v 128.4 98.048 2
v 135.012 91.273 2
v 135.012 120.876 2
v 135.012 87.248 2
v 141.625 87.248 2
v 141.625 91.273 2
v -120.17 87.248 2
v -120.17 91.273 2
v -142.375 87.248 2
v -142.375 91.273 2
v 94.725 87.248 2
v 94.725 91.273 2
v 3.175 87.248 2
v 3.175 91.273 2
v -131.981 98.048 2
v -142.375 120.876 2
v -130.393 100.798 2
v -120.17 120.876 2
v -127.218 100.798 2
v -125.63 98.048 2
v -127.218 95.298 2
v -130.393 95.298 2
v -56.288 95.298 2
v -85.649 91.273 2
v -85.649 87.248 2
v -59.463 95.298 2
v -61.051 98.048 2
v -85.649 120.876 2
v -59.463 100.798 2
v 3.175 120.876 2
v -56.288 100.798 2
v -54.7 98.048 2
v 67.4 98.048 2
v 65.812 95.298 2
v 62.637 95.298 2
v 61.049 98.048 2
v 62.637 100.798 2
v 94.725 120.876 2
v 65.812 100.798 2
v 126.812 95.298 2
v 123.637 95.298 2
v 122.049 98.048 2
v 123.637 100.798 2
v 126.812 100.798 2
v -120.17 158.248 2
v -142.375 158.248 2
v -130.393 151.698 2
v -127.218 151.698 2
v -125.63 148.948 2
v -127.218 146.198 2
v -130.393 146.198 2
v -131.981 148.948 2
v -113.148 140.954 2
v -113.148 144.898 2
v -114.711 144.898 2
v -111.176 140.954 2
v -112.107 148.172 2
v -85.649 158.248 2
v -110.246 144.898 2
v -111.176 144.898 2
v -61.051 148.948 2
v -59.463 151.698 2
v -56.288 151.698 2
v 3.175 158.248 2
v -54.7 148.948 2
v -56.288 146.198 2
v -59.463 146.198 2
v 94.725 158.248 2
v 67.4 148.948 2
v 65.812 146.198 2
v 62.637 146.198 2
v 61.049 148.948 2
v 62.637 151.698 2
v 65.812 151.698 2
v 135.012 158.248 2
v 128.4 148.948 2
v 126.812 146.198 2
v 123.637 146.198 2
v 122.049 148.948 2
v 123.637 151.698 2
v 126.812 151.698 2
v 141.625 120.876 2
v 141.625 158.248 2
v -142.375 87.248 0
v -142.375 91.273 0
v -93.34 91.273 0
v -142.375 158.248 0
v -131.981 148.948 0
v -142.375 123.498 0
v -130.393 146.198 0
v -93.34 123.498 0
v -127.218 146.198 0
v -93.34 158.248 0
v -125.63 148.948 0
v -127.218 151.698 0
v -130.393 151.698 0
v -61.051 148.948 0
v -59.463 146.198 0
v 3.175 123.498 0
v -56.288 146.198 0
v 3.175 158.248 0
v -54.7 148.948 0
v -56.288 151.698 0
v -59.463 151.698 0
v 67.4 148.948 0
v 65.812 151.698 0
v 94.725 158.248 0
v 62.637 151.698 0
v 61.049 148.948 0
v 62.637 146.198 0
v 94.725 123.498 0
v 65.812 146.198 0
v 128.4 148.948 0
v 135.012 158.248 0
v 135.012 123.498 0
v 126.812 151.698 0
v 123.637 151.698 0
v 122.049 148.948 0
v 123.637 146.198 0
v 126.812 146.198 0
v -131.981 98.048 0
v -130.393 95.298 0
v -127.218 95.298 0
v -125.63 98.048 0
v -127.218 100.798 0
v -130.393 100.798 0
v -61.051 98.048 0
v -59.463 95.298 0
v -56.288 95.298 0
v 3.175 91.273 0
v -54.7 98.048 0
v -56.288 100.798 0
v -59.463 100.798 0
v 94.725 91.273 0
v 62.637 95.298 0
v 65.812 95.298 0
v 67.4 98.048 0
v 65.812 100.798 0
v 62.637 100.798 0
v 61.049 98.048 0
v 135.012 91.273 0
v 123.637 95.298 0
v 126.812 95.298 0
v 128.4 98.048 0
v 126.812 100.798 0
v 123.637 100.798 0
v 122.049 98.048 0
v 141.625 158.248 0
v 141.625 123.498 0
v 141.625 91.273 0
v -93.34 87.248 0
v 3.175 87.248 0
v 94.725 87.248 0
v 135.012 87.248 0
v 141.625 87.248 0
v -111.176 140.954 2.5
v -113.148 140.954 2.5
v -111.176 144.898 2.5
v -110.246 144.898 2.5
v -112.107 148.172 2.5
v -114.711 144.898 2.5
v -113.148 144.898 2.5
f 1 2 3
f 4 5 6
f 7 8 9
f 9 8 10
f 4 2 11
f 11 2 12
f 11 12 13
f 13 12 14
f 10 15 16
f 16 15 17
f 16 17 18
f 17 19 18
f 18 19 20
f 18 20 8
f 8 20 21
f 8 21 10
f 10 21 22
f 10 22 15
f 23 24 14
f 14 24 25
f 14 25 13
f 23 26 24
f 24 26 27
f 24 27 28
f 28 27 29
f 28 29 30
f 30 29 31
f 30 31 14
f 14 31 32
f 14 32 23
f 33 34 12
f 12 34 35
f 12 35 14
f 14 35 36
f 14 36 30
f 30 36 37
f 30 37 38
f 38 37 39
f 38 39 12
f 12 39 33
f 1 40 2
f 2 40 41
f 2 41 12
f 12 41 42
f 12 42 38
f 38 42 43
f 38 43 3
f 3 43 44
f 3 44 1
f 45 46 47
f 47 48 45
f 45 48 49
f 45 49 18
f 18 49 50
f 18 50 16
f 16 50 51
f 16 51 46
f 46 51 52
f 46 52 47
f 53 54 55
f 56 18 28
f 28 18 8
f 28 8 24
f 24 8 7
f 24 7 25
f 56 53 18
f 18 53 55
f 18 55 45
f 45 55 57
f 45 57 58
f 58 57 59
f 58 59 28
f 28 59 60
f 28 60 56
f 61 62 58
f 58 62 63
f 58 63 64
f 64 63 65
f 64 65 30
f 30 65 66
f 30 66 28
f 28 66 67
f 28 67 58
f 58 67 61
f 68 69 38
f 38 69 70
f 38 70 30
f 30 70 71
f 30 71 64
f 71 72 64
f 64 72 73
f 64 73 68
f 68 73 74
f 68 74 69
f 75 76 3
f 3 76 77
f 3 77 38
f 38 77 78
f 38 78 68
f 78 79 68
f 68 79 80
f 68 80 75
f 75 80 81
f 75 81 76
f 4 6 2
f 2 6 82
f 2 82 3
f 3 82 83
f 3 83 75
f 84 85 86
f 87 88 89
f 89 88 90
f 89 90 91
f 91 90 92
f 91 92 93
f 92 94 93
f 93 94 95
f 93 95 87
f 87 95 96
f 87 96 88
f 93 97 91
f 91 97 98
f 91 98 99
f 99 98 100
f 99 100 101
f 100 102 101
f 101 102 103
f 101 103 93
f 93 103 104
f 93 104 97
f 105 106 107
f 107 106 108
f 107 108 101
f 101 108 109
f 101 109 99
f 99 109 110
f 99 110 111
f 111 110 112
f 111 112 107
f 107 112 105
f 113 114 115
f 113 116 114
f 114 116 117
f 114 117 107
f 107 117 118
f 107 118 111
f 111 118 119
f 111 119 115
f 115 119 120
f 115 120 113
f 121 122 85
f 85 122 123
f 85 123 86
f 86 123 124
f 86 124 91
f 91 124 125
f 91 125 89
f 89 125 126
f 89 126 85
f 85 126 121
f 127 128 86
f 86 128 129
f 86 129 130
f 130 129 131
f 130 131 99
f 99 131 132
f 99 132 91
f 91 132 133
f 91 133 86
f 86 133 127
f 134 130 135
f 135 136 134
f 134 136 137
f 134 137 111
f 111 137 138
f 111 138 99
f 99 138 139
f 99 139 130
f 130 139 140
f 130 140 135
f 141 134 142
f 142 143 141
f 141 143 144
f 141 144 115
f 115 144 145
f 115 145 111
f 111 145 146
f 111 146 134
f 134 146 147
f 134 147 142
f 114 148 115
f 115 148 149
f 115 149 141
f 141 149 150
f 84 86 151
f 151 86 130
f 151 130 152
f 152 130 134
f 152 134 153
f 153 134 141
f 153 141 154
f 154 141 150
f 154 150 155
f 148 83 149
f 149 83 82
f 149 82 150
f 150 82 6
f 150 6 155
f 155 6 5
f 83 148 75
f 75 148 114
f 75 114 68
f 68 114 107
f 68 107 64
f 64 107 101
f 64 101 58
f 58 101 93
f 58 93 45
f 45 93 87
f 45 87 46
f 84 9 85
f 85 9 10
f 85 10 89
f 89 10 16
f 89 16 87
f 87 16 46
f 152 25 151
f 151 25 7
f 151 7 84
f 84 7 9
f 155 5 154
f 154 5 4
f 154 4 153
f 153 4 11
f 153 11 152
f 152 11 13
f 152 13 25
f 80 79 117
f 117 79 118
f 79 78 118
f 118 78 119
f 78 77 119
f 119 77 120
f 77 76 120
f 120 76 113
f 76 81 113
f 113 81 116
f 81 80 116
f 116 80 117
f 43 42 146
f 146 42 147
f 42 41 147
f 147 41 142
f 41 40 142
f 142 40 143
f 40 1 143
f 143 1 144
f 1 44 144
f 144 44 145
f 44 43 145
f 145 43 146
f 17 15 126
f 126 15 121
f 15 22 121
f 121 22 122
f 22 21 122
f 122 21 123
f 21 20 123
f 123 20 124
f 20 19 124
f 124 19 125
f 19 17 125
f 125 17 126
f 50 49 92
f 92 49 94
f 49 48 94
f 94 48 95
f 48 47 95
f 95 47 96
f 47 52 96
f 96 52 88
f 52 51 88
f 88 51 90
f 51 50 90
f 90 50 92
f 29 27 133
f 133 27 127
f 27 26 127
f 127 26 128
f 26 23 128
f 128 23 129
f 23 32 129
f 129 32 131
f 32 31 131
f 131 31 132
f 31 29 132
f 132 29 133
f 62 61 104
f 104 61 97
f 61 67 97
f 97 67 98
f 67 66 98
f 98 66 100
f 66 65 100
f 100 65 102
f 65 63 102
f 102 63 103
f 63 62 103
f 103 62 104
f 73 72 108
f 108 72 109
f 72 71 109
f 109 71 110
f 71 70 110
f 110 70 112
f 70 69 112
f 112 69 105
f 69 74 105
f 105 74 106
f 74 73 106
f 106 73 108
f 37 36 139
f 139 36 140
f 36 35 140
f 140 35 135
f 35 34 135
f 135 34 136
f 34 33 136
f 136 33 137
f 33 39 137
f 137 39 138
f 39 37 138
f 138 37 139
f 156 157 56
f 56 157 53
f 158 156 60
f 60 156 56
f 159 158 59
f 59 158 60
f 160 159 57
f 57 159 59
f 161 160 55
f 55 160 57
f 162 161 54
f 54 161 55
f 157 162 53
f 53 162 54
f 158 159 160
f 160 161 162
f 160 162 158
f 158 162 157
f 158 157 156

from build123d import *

# Parameters (mm, degrees)
SKETCH1_W           = 284
SKETCH1_H           = 71
BOSS_EXTRUDE1_DEPTH = 2
BOSS_EXTRUDE2_DEPTH = 0.5


with BuildPart() as part:
    # Sketch1 → Boss-Extrude1 (new body)
    with BuildSketch(Plane.XY):
        with Locations((-0.375320298, 122.74793824)):
            Rectangle(SKETCH1_W, SKETCH1_H)
        Polygon((122.049253222, 148.94793824), (123.636966462, 146.19793824), (126.812392942, 146.19793824), (128.400106183, 148.94793824), (126.812392942, 151.69793824), (123.636966462, 151.69793824), align=None, mode=Mode.SUBTRACT)
        Polygon((122.049253222, 98.04793824), (123.636966462, 95.29793824), (126.812392942, 95.29793824), (128.400106183, 98.04793824), (126.812392942, 100.79793824), (123.636966462, 100.79793824), align=None, mode=Mode.SUBTRACT)
        Polygon((-131.980746778, 98.04793824), (-130.393033538, 95.29793824), (-127.217607058, 95.29793824), (-125.629893817, 98.04793824), (-127.217607058, 100.79793824), (-130.393033538, 100.79793824), align=None, mode=Mode.SUBTRACT)
        Polygon((-125.629893817, 148.94793824), (-127.217607058, 151.69793824), (-130.393033538, 151.69793824), (-131.980746778, 148.94793824), (-130.393033538, 146.19793824), (-127.217607058, 146.19793824), align=None, mode=Mode.SUBTRACT)
        Polygon((-61.050746778, 98.04793824), (-59.463033538, 95.29793824), (-56.287607058, 95.29793824), (-54.699893817, 98.04793824), (-56.287607058, 100.79793824), (-59.463033538, 100.79793824), align=None, mode=Mode.SUBTRACT)
        Polygon((-61.050746778, 148.94793824), (-59.463033538, 146.19793824), (-56.287607058, 146.19793824), (-54.699893817, 148.94793824), (-56.287607058, 151.69793824), (-59.463033538, 151.69793824), align=None, mode=Mode.SUBTRACT)
        Polygon((61.049253222, 148.94793824), (62.636966462, 146.19793824), (65.812392942, 146.19793824), (67.400106183, 148.94793824), (65.812392942, 151.69793824), (62.636966462, 151.69793824), align=None, mode=Mode.SUBTRACT)
        Polygon((61.049253222, 98.04793824), (62.636966462, 95.29793824), (65.812392942, 95.29793824), (67.400106183, 98.04793824), (65.812392942, 100.79793824), (62.636966462, 100.79793824), align=None, mode=Mode.SUBTRACT)
    extrude(amount=BOSS_EXTRUDE1_DEPTH)

    # Sketch2 → Boss-Extrude2 (add)
    with BuildSketch(Plane.XY.offset(2)):
        Polygon((-113.14842838, 140.954026683), (-113.14842838, 144.897894949), (-114.711093164, 144.897894949), (-112.106651856, 148.172049737), (-110.246336636, 144.897894949), (-111.176494246, 144.897894949), (-111.176494246, 140.954026683), align=None)
    extrude(amount=BOSS_EXTRUDE2_DEPTH)


solid = part.part
